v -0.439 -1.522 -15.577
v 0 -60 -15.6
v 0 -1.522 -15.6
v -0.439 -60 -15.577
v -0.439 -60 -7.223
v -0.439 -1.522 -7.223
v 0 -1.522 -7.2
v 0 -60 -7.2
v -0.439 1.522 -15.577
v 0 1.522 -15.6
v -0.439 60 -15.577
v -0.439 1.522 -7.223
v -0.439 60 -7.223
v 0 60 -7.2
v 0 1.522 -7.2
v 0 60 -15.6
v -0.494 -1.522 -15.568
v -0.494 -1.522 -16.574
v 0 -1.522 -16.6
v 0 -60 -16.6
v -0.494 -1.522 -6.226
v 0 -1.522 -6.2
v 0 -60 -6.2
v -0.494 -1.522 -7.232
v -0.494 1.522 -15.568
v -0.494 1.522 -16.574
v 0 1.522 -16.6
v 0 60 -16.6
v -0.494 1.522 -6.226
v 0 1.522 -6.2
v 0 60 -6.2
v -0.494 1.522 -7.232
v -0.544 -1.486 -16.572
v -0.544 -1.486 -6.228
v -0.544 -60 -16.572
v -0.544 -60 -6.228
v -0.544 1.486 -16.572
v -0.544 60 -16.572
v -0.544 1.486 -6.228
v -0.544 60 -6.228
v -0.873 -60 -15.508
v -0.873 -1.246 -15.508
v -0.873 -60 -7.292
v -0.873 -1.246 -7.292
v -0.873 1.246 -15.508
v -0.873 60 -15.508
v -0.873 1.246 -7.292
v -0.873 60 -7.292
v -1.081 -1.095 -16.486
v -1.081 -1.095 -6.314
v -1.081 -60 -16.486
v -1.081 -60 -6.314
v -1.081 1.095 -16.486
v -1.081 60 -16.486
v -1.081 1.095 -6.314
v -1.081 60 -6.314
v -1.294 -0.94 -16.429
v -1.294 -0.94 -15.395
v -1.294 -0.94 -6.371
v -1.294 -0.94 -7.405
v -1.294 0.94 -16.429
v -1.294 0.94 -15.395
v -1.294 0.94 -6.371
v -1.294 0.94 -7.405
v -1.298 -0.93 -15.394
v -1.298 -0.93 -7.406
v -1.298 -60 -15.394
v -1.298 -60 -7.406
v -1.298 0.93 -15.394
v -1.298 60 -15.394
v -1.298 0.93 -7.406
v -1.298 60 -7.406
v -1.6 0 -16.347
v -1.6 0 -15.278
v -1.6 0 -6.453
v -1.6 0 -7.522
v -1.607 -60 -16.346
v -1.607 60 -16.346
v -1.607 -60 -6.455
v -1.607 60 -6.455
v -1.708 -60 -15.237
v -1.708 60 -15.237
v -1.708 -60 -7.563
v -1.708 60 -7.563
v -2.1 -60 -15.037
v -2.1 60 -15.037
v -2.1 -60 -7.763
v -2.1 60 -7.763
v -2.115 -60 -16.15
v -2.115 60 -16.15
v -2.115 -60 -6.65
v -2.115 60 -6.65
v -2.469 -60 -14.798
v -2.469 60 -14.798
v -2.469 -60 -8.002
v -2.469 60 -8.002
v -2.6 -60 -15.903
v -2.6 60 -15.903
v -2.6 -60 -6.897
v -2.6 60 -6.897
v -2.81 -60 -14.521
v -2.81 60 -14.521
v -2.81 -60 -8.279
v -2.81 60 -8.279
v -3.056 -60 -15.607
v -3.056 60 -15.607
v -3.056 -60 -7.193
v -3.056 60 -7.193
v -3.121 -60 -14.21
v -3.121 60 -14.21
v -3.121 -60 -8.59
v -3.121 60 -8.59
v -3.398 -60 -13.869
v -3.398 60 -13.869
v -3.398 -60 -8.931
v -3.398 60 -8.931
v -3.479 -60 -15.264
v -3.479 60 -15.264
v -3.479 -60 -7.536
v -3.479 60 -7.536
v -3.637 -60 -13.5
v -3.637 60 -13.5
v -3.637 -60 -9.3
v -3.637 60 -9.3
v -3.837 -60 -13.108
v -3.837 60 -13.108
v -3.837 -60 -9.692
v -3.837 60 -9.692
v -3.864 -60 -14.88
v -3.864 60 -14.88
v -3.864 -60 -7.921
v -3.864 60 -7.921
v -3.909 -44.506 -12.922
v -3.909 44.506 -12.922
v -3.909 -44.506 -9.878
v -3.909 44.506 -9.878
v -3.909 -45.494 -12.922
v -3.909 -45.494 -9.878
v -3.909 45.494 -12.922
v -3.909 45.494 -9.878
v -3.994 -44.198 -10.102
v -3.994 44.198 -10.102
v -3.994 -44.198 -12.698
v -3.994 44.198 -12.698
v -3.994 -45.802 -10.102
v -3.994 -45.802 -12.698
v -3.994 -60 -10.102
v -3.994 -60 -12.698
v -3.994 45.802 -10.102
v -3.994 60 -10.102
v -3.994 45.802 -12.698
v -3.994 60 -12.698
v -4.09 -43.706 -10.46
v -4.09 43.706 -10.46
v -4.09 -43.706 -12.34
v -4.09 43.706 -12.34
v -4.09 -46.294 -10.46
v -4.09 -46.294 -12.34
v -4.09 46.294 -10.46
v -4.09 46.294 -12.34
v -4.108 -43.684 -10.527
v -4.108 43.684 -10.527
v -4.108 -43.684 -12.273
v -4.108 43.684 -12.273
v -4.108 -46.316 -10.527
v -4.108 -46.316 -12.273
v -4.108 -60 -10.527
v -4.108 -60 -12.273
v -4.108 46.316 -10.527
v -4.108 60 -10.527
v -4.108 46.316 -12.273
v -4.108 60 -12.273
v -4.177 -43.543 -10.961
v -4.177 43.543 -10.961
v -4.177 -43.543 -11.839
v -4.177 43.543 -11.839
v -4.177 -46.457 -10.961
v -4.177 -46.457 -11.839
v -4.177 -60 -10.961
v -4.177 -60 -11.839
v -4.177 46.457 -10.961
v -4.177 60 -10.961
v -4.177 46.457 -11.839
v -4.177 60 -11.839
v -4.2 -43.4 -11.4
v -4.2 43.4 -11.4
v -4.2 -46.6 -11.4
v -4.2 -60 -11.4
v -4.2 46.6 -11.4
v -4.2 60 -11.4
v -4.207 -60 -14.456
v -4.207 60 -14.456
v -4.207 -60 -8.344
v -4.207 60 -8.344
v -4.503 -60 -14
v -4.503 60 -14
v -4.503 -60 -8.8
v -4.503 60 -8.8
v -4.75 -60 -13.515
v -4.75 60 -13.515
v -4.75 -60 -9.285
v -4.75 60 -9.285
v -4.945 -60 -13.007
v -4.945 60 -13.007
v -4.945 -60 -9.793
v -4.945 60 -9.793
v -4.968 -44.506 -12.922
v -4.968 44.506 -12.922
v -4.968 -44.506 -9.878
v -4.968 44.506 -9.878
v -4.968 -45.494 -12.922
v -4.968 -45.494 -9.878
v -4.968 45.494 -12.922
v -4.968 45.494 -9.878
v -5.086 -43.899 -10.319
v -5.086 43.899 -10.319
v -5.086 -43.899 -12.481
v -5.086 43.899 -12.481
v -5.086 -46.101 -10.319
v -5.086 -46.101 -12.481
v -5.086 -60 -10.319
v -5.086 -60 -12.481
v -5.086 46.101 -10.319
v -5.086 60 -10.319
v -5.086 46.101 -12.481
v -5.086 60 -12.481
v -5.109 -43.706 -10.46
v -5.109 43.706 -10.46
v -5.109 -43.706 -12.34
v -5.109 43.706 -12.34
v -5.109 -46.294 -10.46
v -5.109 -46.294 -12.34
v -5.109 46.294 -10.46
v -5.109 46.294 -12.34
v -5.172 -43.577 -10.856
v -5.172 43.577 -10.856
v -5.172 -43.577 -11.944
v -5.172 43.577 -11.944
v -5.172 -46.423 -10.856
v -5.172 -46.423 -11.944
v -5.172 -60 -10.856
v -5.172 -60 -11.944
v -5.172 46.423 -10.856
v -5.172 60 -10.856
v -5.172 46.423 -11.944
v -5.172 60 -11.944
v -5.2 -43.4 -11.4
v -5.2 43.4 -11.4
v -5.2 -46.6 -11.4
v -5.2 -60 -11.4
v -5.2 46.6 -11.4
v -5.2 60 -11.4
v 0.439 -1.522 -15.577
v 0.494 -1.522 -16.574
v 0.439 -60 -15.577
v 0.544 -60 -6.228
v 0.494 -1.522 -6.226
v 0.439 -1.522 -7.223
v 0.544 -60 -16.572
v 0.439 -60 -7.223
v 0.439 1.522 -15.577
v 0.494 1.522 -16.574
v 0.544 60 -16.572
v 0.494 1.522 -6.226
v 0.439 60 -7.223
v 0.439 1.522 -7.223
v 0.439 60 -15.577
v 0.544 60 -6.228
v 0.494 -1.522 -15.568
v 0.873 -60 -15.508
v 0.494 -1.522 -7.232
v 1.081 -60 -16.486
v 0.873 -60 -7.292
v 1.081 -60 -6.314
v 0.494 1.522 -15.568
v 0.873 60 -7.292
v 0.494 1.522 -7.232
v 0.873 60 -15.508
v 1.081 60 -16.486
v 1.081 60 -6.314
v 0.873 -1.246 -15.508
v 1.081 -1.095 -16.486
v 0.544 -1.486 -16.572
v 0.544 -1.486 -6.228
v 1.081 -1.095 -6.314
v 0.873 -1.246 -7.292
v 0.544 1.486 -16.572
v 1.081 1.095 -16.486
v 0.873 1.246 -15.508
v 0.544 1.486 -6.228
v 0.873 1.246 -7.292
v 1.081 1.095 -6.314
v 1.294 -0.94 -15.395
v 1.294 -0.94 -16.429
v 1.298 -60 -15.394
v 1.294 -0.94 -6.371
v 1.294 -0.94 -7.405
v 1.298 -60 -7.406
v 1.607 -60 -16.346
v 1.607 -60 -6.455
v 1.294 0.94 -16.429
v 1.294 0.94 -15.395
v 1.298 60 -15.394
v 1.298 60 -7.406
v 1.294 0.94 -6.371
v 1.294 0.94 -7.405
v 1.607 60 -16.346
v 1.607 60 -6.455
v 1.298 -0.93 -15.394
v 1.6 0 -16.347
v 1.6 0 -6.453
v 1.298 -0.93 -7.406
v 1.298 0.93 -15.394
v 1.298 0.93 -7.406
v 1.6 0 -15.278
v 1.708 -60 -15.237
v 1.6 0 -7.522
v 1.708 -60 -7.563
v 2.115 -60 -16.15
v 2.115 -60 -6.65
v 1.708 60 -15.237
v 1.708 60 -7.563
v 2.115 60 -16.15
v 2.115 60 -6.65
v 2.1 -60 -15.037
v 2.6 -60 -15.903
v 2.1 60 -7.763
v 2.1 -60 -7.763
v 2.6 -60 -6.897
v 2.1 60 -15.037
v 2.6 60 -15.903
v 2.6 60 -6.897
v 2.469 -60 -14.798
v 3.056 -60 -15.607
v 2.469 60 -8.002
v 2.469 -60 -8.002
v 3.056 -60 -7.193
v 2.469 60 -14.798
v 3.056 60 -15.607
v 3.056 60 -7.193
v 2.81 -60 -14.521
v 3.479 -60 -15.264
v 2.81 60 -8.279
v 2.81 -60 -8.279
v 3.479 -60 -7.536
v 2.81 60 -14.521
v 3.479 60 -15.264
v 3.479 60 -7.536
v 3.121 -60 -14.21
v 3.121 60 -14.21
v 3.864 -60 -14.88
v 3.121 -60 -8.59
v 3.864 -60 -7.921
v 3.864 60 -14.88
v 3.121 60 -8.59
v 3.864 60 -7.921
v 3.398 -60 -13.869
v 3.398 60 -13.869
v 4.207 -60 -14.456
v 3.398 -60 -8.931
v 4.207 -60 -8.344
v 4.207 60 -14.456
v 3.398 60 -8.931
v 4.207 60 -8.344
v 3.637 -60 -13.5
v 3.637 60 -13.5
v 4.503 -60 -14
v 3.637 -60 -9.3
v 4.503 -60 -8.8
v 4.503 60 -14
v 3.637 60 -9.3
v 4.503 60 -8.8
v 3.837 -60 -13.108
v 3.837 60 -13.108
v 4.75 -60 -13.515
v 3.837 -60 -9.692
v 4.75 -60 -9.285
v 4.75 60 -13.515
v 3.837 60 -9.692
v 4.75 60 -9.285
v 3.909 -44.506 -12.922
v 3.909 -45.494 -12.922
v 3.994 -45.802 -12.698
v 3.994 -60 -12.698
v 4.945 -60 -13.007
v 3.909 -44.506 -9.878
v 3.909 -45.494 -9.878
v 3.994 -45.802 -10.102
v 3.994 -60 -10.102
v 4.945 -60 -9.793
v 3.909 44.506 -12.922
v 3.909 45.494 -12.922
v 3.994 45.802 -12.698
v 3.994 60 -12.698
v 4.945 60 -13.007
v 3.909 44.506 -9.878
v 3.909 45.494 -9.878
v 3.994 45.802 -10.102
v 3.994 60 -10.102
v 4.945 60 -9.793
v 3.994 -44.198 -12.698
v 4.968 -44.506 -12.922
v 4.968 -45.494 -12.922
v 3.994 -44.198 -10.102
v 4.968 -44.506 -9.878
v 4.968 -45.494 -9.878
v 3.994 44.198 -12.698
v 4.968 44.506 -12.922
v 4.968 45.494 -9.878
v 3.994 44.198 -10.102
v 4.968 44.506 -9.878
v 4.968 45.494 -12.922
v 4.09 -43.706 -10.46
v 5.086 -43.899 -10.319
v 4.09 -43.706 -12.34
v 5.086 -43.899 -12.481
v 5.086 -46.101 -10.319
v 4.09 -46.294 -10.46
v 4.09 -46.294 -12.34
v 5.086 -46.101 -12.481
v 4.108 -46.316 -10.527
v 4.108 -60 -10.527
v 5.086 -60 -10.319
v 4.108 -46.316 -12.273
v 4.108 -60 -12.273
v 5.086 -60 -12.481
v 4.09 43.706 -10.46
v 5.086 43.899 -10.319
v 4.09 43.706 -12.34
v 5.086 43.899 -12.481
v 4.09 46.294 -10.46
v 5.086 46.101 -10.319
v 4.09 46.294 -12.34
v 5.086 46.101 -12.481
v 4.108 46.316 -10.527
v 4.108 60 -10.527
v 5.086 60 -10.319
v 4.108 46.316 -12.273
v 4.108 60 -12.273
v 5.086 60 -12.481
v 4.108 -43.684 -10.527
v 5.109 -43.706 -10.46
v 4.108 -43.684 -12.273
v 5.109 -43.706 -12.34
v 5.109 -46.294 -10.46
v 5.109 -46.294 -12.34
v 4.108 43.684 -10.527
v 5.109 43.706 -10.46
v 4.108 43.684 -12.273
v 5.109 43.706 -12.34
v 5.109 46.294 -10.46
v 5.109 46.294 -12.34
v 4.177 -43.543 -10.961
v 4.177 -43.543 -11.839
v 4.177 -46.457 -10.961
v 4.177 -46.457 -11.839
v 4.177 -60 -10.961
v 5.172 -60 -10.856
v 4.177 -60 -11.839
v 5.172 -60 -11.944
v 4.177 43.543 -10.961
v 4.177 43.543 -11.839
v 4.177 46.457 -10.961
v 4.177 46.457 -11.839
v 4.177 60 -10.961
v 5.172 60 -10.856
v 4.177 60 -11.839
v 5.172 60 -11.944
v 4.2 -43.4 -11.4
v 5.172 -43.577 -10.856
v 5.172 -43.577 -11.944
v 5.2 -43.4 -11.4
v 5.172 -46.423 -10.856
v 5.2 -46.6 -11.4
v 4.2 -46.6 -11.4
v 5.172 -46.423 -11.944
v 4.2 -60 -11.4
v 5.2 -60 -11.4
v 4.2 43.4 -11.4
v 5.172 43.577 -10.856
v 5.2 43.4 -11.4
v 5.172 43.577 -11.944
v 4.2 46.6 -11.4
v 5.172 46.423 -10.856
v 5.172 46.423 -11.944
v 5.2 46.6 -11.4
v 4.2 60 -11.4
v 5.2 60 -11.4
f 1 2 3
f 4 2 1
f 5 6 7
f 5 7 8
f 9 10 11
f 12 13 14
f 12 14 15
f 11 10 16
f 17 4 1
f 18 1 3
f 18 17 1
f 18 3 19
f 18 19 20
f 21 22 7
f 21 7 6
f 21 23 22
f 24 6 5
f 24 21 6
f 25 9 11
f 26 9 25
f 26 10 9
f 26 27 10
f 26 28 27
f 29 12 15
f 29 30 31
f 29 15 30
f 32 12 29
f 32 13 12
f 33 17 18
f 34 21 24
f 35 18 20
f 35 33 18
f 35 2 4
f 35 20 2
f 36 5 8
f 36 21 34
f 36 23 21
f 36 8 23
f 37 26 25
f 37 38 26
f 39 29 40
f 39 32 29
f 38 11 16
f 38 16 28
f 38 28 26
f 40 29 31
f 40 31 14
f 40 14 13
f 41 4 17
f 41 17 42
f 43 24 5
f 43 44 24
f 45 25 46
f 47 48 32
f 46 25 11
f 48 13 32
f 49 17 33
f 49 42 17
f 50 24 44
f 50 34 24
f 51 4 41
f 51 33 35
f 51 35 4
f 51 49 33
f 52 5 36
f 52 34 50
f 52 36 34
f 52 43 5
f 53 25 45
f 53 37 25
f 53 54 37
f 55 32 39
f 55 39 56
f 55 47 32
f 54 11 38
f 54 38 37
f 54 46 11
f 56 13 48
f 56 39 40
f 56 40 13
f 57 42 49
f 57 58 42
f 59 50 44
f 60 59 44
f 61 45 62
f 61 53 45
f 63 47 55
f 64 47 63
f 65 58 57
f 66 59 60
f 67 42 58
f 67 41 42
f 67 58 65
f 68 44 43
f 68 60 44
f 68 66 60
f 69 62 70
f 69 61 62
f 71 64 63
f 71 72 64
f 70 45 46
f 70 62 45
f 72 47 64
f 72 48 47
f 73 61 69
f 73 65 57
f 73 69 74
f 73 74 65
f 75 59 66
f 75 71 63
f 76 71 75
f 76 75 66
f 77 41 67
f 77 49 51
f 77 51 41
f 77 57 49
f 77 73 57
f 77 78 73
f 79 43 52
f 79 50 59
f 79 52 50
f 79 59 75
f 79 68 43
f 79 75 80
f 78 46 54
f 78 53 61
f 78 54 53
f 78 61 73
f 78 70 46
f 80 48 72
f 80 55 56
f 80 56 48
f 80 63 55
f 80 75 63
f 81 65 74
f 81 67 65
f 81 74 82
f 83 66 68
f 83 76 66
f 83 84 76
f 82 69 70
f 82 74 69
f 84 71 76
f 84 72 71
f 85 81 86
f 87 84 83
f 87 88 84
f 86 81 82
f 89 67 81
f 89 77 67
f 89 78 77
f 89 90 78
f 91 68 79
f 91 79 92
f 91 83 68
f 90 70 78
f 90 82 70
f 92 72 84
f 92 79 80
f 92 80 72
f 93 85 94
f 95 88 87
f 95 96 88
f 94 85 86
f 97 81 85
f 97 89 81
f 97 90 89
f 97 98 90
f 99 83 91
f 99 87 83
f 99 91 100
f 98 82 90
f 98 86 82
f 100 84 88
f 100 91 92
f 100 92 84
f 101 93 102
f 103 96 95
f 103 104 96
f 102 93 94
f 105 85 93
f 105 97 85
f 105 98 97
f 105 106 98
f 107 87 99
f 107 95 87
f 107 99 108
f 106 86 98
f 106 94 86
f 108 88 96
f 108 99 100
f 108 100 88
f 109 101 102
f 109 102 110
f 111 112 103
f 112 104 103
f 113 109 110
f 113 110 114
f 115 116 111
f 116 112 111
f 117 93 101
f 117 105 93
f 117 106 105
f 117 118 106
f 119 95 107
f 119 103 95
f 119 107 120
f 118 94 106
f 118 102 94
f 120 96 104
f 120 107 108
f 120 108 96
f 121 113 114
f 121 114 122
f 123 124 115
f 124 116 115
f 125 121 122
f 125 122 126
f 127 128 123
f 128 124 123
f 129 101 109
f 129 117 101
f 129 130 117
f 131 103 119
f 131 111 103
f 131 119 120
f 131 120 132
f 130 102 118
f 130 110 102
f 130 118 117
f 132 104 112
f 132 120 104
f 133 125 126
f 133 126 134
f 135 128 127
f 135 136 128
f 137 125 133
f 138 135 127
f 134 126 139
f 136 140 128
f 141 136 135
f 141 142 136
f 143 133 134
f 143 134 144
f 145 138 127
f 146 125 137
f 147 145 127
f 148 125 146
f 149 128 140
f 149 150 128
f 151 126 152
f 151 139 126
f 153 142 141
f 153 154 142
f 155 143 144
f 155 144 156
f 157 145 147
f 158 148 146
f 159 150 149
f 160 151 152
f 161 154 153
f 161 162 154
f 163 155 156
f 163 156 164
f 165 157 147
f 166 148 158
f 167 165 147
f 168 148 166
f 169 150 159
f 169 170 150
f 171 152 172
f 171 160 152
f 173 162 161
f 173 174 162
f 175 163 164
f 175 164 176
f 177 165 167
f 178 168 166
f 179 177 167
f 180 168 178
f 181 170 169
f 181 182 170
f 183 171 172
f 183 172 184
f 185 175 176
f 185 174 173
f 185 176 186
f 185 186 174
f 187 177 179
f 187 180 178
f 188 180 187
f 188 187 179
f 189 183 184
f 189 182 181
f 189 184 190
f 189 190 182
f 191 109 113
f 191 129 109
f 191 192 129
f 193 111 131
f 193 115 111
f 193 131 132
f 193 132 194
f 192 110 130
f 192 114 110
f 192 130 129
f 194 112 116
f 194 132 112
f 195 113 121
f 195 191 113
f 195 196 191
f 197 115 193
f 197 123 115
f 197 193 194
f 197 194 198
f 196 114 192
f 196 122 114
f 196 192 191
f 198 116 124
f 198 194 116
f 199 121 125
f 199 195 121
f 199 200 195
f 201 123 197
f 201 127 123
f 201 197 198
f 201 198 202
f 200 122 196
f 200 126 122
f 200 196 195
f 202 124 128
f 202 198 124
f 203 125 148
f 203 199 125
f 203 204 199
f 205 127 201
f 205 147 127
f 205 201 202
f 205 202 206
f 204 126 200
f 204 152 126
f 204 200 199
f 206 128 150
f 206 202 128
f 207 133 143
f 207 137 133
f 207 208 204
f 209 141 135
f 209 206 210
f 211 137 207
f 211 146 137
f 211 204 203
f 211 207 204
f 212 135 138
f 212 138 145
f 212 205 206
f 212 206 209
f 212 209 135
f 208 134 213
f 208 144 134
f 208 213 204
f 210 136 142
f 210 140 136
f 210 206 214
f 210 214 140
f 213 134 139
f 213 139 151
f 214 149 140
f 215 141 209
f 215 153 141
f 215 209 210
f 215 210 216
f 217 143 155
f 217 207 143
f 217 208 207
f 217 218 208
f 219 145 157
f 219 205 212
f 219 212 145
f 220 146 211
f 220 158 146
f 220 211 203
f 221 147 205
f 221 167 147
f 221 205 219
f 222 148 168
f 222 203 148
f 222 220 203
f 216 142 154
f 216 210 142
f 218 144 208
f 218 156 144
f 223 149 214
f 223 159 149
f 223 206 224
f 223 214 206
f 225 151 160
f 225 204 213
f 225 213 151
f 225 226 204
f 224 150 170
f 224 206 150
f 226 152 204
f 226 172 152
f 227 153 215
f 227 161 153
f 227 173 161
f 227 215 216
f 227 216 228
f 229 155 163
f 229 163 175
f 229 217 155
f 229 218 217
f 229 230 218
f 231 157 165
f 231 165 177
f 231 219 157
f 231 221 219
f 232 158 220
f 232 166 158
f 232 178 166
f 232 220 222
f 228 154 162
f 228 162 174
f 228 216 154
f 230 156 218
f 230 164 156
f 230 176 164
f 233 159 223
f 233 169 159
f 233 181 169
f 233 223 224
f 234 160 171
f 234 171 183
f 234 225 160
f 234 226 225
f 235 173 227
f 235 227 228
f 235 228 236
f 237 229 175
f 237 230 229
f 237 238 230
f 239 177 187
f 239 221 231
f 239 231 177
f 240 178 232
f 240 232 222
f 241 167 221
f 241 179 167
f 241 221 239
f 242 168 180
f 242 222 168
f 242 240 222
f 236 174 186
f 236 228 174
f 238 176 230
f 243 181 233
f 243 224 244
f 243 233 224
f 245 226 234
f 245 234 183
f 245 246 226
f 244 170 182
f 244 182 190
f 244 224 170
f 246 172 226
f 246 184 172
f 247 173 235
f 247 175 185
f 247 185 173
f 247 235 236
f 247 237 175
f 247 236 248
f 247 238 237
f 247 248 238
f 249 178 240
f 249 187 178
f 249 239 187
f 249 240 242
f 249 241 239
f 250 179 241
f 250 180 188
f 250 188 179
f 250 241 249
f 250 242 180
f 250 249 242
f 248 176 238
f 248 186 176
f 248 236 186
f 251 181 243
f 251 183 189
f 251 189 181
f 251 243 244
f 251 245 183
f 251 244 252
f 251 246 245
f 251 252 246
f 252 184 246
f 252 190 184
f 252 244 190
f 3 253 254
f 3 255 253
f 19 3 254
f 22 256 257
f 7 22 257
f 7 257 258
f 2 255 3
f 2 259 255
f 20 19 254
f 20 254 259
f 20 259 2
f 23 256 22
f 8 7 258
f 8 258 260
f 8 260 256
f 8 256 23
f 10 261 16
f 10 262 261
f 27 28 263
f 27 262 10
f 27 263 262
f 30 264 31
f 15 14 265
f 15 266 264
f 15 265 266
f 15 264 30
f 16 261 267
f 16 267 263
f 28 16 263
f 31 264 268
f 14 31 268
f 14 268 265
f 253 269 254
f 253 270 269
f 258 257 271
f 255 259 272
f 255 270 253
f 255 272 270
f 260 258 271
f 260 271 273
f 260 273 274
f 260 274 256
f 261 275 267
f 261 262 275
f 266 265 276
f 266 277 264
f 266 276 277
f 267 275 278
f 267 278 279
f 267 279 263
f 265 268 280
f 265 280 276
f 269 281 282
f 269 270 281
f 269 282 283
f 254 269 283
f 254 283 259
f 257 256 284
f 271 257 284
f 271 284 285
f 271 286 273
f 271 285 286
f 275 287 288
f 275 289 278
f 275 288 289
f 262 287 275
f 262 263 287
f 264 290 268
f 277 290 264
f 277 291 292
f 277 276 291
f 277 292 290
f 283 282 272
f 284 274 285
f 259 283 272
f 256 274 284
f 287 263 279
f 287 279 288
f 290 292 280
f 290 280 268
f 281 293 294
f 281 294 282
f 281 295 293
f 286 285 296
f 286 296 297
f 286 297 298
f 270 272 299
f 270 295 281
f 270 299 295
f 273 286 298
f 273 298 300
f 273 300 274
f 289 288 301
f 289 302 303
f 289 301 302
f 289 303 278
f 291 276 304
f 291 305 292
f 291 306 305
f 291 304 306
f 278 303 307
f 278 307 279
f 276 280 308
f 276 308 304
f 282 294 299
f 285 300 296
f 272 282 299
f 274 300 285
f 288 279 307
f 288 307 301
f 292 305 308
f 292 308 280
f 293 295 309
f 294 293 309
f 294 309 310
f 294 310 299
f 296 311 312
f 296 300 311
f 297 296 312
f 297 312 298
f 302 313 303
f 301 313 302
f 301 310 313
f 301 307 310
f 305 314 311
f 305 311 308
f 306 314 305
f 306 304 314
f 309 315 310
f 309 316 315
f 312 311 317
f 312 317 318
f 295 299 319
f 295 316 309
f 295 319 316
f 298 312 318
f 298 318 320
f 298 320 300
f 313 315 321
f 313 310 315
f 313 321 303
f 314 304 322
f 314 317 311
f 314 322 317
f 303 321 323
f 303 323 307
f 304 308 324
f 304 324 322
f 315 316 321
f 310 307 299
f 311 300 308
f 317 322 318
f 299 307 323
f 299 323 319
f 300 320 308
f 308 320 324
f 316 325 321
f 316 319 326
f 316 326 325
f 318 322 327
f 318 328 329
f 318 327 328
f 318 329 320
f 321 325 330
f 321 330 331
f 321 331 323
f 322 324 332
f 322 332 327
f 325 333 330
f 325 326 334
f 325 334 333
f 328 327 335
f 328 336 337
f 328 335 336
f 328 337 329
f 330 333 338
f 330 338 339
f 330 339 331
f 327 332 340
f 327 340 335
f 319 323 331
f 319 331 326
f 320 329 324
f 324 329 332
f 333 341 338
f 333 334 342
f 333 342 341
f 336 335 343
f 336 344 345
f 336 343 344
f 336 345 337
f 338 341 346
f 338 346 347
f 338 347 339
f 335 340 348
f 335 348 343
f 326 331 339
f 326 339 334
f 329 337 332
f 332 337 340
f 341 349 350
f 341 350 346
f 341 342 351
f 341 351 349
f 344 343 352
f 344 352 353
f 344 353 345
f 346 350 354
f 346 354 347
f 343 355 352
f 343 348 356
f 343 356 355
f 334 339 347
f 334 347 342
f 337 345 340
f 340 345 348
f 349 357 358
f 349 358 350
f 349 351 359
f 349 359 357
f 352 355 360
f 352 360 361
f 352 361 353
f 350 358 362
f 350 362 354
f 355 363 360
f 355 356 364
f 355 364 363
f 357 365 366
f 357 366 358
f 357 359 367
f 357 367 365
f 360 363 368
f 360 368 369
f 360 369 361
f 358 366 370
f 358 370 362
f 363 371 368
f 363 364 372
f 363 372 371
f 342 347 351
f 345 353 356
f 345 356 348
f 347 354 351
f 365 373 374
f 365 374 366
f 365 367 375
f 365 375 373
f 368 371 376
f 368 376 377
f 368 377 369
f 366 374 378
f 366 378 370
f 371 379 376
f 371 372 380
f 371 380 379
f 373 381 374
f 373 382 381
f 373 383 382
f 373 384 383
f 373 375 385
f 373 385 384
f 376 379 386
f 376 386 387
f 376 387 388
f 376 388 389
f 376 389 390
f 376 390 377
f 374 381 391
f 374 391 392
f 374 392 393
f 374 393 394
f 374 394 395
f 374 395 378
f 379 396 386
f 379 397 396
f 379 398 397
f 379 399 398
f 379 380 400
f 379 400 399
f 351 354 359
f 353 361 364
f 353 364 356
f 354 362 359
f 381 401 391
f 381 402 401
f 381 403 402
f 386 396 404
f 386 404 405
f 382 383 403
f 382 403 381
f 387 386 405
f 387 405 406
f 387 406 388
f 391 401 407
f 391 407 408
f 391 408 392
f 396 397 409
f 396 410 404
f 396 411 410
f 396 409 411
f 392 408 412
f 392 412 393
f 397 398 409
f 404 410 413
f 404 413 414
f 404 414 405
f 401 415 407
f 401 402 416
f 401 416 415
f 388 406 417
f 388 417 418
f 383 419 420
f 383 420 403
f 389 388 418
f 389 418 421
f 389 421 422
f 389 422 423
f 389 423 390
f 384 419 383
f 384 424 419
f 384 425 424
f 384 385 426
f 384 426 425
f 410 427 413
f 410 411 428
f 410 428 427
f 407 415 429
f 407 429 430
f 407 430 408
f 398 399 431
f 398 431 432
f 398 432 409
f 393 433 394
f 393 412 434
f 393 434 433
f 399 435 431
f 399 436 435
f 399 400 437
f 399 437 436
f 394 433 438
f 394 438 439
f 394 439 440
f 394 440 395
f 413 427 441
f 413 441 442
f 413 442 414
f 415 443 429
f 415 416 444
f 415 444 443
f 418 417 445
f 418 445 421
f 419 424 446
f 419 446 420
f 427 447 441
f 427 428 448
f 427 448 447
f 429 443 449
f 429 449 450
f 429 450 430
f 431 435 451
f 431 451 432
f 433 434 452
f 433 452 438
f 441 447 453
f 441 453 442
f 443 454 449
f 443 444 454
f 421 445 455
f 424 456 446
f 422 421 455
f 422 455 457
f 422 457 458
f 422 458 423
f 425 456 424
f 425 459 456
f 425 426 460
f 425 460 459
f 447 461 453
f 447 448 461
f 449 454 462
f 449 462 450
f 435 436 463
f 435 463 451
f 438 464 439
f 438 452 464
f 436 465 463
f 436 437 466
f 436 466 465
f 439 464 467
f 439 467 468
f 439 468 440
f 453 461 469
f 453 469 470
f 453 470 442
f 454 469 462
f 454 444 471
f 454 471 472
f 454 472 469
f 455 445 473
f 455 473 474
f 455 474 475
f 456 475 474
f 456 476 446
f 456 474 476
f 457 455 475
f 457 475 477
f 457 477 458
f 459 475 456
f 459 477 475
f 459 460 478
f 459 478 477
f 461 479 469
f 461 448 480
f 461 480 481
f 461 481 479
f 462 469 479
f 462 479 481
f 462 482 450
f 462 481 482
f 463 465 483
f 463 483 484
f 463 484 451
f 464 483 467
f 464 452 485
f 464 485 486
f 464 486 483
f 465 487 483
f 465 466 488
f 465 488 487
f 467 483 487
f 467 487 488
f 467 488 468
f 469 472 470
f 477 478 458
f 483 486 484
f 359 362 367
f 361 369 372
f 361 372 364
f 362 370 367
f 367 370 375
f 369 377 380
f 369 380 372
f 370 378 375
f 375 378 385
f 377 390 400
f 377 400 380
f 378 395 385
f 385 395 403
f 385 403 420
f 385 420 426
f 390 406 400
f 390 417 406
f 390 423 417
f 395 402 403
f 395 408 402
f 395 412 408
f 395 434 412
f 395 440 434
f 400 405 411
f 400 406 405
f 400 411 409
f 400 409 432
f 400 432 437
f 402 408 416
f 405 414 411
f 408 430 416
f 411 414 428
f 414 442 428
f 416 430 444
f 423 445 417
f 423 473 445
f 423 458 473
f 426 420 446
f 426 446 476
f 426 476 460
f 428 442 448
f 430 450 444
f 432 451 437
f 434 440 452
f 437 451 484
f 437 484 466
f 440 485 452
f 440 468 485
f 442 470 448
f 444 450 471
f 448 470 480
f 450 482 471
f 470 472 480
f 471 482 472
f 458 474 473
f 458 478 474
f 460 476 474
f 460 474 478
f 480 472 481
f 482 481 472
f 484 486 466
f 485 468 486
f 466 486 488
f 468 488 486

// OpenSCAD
// file: ../888_1000.scad
/*
// Nastavení zobrazení
$vpr = [338, 0, 357];
$vpt = [180, 25, -18];
$vpd = 1280;
*/
//improving rendering speed.
draft = true;   // sets rendering quality to draft.
$fs = draft ? 5 : 0.5;
$fa = 10;

/*
TODO: 

Přední díl obsahuje převis ve směru vybrání pro držák motoru. (U horního zámku)
Otvory pro šrouby v předním dílu jsou oválné, protože nejsou kolmo k rovině modelu.


*/




//vnitřní kapka
module hollowing_skeleton(shell_thickness = hull_wall_thickness, draft)
{

    beta = 90 - trailing_edge_angle(naca = hull_airfoil_thickness); // calculate the angle of trailing edge
    trailing_wall= 1/(cos(beta)); //calculate lenght of wall cut relative to wall thickness 

    intersection () {
    resize([hull_drop_length - shell_thickness - trailing_wall* shell_thickness, (hull_drop_length*hull_airfoil_thickness/100) - 2*shell_thickness, (hull_drop_length*hull_airfoil_thickness/100) - 2*shell_thickness], auto=true)
            rotate ([0,90,0])           
            rotate_extrude($fn = draft ? 50 : 100)
                rotate([0,0,90])
                    difference()
                    {
                      polygon(points = airfoil_data(naca=hull_airfoil_thickness, L = hull_drop_length, N=draft ? 50 : 200)); 
                      square(hull_drop_length); 
                    }
                    
      translate([0,0,hull_corner_radius])
        minkowski(){                   
            translate ([0,- hull_y_size , - hull_z_size/2 + shell_thickness])
                cube ([hull_x_size,2*hull_y_size - shell_thickness, hull_z_size - 2*shell_thickness - 2*hull_corner_radius]);
                rotate ([0,90,0])
                    cylinder (h = 1, r = hull_corner_radius, $fn = draft ? 50 : 100);                   
          }
                            
    }
}

module hollowing_skeleton_hem(ribbon_width, draft)
{

    beta = 90 - trailing_edge_angle(naca = hull_airfoil_thickness); // calculate the angle of trailing edge
    trailing_wall= 1/(cos(beta)); //calculate lenght of wall cut relative to wall thickness 

    intersection () {
    resize([hull_drop_length - ribbon_width - trailing_wall* ribbon_width, (hull_drop_length*hull_airfoil_thickness/100) - 2*ribbon_width, (hull_drop_length*hull_airfoil_thickness/100) - 2*ribbon_width], auto=true)
            rotate ([0,90,0])           
            rotate_extrude($fn = draft ? 50 : 100)
                rotate([0,0,90])
                    difference()
                    {
                      polygon(points = airfoil_data(naca=hull_airfoil_thickness, L = hull_drop_length, N=draft ? 50 : 200)); 
                      square(hull_drop_length); 
                    }
                    
      translate([0,0,hull_corner_radius])
        minkowski(){                   
            translate ([0,- hull_y_size, - hull_z_size/2 + ribbon_width])
                cube ([hull_x_size,2*hull_y_size - ribbon_width, hull_z_size - 2*ribbon_width - 2*hull_corner_radius]);
                rotate ([0,90,0])
                    cylinder (h = 1, r = hull_corner_radius, $fn = draft ? 50 : 100);                   
          }
                            
    }
}




//celá kapka
module drop(draft = true)
{

    beta = 90 - trailing_edge_angle(naca = hull_airfoil_thickness); // calculate the angle of trailing edge
    trailing_wall= 1/(cos(beta)); //calculate lenght of wall cut relative to wall thickness 

	intersection () {
    	rotate ([0,90,0])           
        	rotate_extrude($fn = draft ? 50 : 100)
                    rotate([0,0,90])
                        difference()
                        {
	                        polygon(points = airfoil_data(naca=hull_airfoil_thickness, L =hull_drop_length , N=draft ? 50 : 200)); 
    	                    square(hull_drop_length); 
        	            }
            		
        translate([0,0,hull_corner_radius])
          	minkowski(){                   
             	translate ([0,-hull_y_size,-hull_z_size/2])
             			cube ([hull_x_size, 2*hull_y_size,hull_z_size-2*hull_corner_radius]);
             	  	rotate ([0,90,0])
                 		cylinder (h = 1, r = hull_corner_radius, $fn = draft ? 50 : 100);                   
		    }
		    
	}
}


//základní kapka
module drop_skin(draft){

	difference(){
			drop();
		translate([hull_wall_thickness,0,0])
			hollowing_skeleton();
	}

}




drop_skin();














use <./lib/naca4.scad>
include <../Parameters.scad>
// file: ../../Parameters.scad
//Main tube diameter - hole [mm]
main_tube_outer_diameter = 25.4;
main_tube_inner_diameter = 23.5;

//Tube for undercarriage - hole [mm]
tube_for_undercarriage_outer_diameter = 10.6;
tube_for_undercarriage_inner_diameter = 6;
global_clearance = 0.5;


//umístění podvozkových trubek

second_undercarriage_hole = main_tube_outer_diameter*2 + main_tube_outer_diameter/5 + main_tube_outer_diameter/2 + 170 + 160;

// Parameters of cube couplings
coupling_wall_thickness = main_tube_outer_diameter/5;  //width of coupling walls 
thickness_between_tubes = main_tube_outer_diameter/10;    // minimum distance between tubes in couplings

coupling_wall_thickness_undercarriage = tube_for_undercarriage_outer_diameter/3;
thickness_between_tubes_undercarriage = tube_for_undercarriage_outer_diameter/10;

//Screw diameter and nut for M4 [mm]
M4_screw_diameter=4.5;
Nut_height_M4 = 3.2;
Nut_diameter_M4 = 7.86;


//Screw diameter and nut for M3 [mm]
M3_screw_diameter = 3.2;
Nut_height_M3 = 1.7;	
Nut_diameter_M3 = 6.6; 


//The tube for help
Help_main_tube_outer = 25;
Help_main_tube_inner = 23; 
Help_tube_for_undercarriage_outer = 10;
Help_tube_for_undercarriage_inner = 5;


//main hull parameters

hull_drop_length = 580;
hull_wall_thickness = 0.8;
hull_y_size = 120;
hull_z_size = 150;
hull_x_size = 580;
hull_corner_radius = 4;
hull_airfoil_thickness= 35;  // thickness of drop generating airfoil in percent of lenght.
hull_scale_x = 1;
hull_scale_y = 1.5;
hull_scale_z = 1.5;

main_pilon_position = 170+68;
cover_pilon_position = 180;
height_of_vertical_tube = 275; //278mm je změřená délka trubky. 

ribbon_width = 5; // šířka vyztužovacích lemů. 

// šířka otvoru v přední části kapoty pro držák motoru.
width_of_engine_holder = 63;

//Top Cover Division - dělení horního krytu pro tisk
top_cover_division = [0, 50, 150, 280, 410, hull_x_size]; // upraveny seznam tak, aby deleni začinalo od nuly, což umožňí úplně automatické rozdělení.

//Bottom Cover Division - dělení dolního krytu pro tisk
bottom_cover_division = [0,100,250,365, 470, hull_x_size];
// zkrácená část pro payload pro testovací tisk
//bottom_cover_division = [0,200,250,365, 470, hull_x_size];

//Base Divison - dělení podložky
base_division = [0,140,280,410, hull_x_size];

//Cover pilon division - na výšku (v ose Z)
cover_pilon_division = [0,170,height_of_vertical_tube + main_tube_outer_diameter + coupling_wall_thickness];

//pozice šroubů
	//horní kryt
top_screw_position = [0, (top_cover_division[0] + top_cover_division[1])/4, (top_cover_division[2] - top_cover_division[1])/2 + top_cover_division[1], (top_cover_division[3] - top_cover_division[2])/2 + top_cover_division[2],(top_cover_division[4] - top_cover_division[3])/2 + top_cover_division[3],(top_cover_division[5] - top_cover_division[4])/2 + top_cover_division[4] - 20];
	//spodní kryt
bottom_screw_position = [0,(bottom_cover_division[0] + bottom_cover_division[1])/15 + 5, bottom_cover_division[1]/1.1, + bottom_cover_division[3], bottom_cover_division[3] + bottom_cover_division[1]/2, bottom_cover_division[4] - 6*global_clearance, bottom_cover_division[4] + bottom_cover_division[1]/2.5];




//šířka zámků
lock_width = 10;

//délka zámků
lock_length = 3;


//accumulator
//základní rozměry akumulátoru
width_of_accumulator = 129.4;//45+1;
depth_of_accumulator = 40.61;
height_of_accumulator = 43.65;
//Zapuštění akumulátoru
sink_of_accumulator = 5; //main_tube_outer_diameter/5 - Nut_height_M3*1.5;

//tloušťka hrany spojky
accumulator_holder_width = 18; 
accumulator_holder_thickness = 10; 

//posunutí akumálátoru na podložce
move_of_accumulator = 165;   // pozice akumulátoru (ovlivňuje těžiště)


////////////////
// Senzory
///////////////////

//opticalFlow
    width_optical_flow_senzor = 45.5;
    depth_optical_flow_senzor = 6;
    height_optical_flow_senzor = 35;
    sink_of_optical_flow_senzor = depth_optical_flow_senzor - 5; 
    M3_optical_flow_senzor_Z = 30.4;
    M3_optical_flow_senzor_X = 24;
    M3_optical_flow_senzor_Z_alone = 9.1;
    M3_optical_flow_senzor_X_alone = 16.7;
// file: ../lib/naca4.scad
// Naca4.scad - library for parametric airfoils of 4 digit NACA series
// Code: Rudolf Huttary, Berlin 
// June 2015
// commercial use prohibited


// general use: for more examples refer to sampler.scad
// naca = naca digits or 3el vector  (default = 12 or [0, 0, .12])
// L    = chord length [mm]      (default= 100)
// N    = # sample points        (default= 81)
// h    = height [mm]            (default= 1)
// open = close at the thin end? (default = true)
// two equivalent example calls
 airfoil(naca = 2408, L = 60, N=1001, h = 30, open = false); 
// airfoil(naca = [.2, .4, .32], L = 60, N=1001, h = 30, open = false); 

module help()
{
  echo(str("\n\nList of signatures in lib:\n=================\n", 
  "module airfoil(naca=2412, L = 100, N = 81, h = 1, open = false) - renders airfoil object\n", 
  "module airfoil(naca=[.2, .4, .12], L = 100, N = 81, h = 1, open = false) - renders airfoil object using percentage for camber,  camber distance and thicknes\n", 
  "function airfoil_data(naca=12, L = 100, N = 81, open = false)\n",
  "=================\n")); 
}

help(); 
// this is the object
module airfoil(naca=12, L = 100, N = 81, h = 1, open = false)
{
  linear_extrude(height = h)
  polygon(points = airfoil_data(naca, L, N, open)); 
}

module hollow_airfoil(lnaca=12, L = 100, N = 81, h = 1, open = false, wall_thickness = 1)
{
    if (open){
        linear_extrude(height = h)

        if (wall_thickness>0){
            difference(){
                polygon(points = airfoil_data(naca, L, N, false));
                offset(delta = - wall_thickness, chamfer = false) polygon(points = airfoil_data(naca, L, N, open = false));
            }
        }
        else{
            difference(){
                offset(delta = - wall_thickness, chamfer = false) polygon(points = airfoil_data(naca, L, N, open = false));
                polygon(points = airfoil_data(naca, L, N, false));
            }
        }
    }
    else{

        linear_extrude(height = abs(wall_thickness))
            polygon(points = airfoil_data(naca, L, N, false)); 

        linear_extrude(height = h)
            difference(){
                polygon(points = airfoil_data(naca, L, N, open));
                offset(delta = - wall_thickness) polygon(points = airfoil_data(naca, L, N, open = false));
            }

        translate([0,0, h - wall_thickness])
            linear_extrude(height = abs(wall_thickness))
                polygon(points = airfoil_data(naca, L, N, false)); 

    }
}


// this is the main function providing the airfoil data
function airfoil_data(naca=12, L = 100, N = 81, open = false) = 
  let(Na = len(naca)!=3?NACA(naca):naca)
  let(A = [.2969, -0.126, -.3516, .2843, open?-0.1015:-0.1036])
  [for (b=[-180:360/(N):179.99]) 
    let (x = (1-cos(b))/2)  
    let(yt = sign(b)*Na[2]/.2*(A*[sqrt(x), x, x*x, x*x*x, x*x*x*x])) 
    Na[0]==0?L*[x, yt]:L*camber(x, yt, Na[0], Na[1], sign(b))];  


function trailing_edge_angle(naca=12, open = false) = 
  let(Na = len(naca)!=3?NACA(naca):naca)
  let(A = [.2969, -0.126, -.3516, .2843, open?-0.1015:-0.1036])
  let (x =0.999)  // set x near to airfoil trailing edge
  let(yt = Na[2]/.2*(A*[sqrt(x), x, x*x, x*x*x, x*x*x*x])) // calculate distance from x-axis at previously set position
  atan2(yt,1-x);  // calculate angle of triangle between end of airfoil. The triange height corresponds to previously calculated distance from x-axis

function surface_angle(x = 0.5, naca=12, open = false) = 
  let(Na = len(naca)!=3?NACA(naca):naca)
  let(A = [0.2969, -0.126, -0.3516, 0.2843, open?-0.1015:-0.1036])
  let(dy = Na[2]/0.2*(A*[(1/2)*(1/sqrt(x)), 1, 2*x, 3*x*x, 4*x*x*x])) // calculate derivative of airfoil function at the x point
  atan(dy);  // calculate  the angle from function derivative

function surface_distance(x = 0.5, naca=12, open = false) = 
  let(Na = len(naca)!=3?NACA(naca):naca)
  let(A = [0.2969, -0.126, -0.3516, 0.2843, open?-0.1015:-0.1036])
  Na[2]/.2*(A*[sqrt(x), x, x*x, x*x*x, x*x*x*x]); // calculate distance from x-axis at previously set position

// helper functions
function NACA(naca) = 
  let (M = floor(naca/1000))
  let (P = floor((naca-M*1000)/100)) 
  [M/100, P/10, floor(naca-M*1000-P*100)/100];  

function camber(x, y, M, P, upper) = 
  let(yc = (x<P)?M/P/P*(2*P*x-x*x): M/(1-P)/(1-P)*(1 - 2*P + 2*P*x -x*x))
  let(dy = (x<P)?2*M/P/P*(P-x):2*M/(1-P)/(1-P)*(P-x))
  let(th = atan(dy))
  [upper ? x - y*sin(th):x + y*sin(th), upper ? yc + y*cos(th):yc - y*cos(th)];
// file: ../888_1031.scad
// patka pro pridelani predni tyce pylonu k nosniku
include <../parameters.scad>
use <888_1004.scad>
//use <lib/drill.scad>

draft = true;

module 888_1031(draft){
    difference(){
        hull(){
            //translate([-beam_patern/2, 0, -beam_thickness/4])
            //    cube([beam_patern, beam_width/2+pilon_pipe_diameter+15, beam_thickness/2]);

        // tvar pro srouby do podlozky
            for (i=[-beam_patern/2,0])
                translate([i, 0, 0])
                    rotate([-90, 0, 0])
                        cylinder(d = M4_nut_diameter+8, h = beam_width/2+pilon_pipe_diameter+15, $fn = draft? 10 : 60);

        // Tvar pro pripevneni pro tyce
            for (i=[-beam_patern/2, beam_patern/2])
                translate([i - beam_patern/4, 0, -beam_main_pipe_thickness - beam_vertical_space_between_pipes])
                    rotate([-90, 0, 0])
                        cylinder(d = beam_main_pipe_thickness+4.75, h = beam_width/2+pilon_pipe_diameter+15, $fn = draft? 10 : 60);
        }

        translate([-40, 0, 0])
            beam_plug(80);

        for (i=[-beam_patern/2, beam_patern/2]) {
            translate([i, 0, 0])
                rotate([-90, 0, 0]){
                    cylinder(d = M4_screw_diameter, h = 100, $fn =  draft? 10 : 60);
                    translate([0, 0, beam_width/2 + 10])
                        cylinder(d = M4_nut_diameter, h = 100, $fn =  draft? 10 : 60);

                }
        }

        // Dira pro pripevneni pro tyce pylonu
        for (i=[[-beam_patern/2, 0], [beam_patern/2, 180]])
            translate([i[0] - beam_patern/4, 0, -beam_main_pipe_thickness - beam_vertical_space_between_pipes]){
                rotate([-90, 0, 0])
                    cylinder(d = beam_main_pipe_thickness, h = beam_width/2 + 5 + 15 + global_clearance, $fn = draft? 10 : 60);
                rotate([0, 90, 0])
                    translate([0, beam_width/2+5, 0])
                        rotate([i[1], 0, 0]){
                            cylinder(d = M3_screw_diameter, h = 20, center = true);
                            translate([0, 0, -10 - beam_main_pipe_thickness/2 -1]) cylinder(d = M3_nut_diameter, h = 10);
                            hull(){
                                translate([0, 0, beam_main_pipe_thickness/2 +1]) cylinder(d = M3_nut_diameter, h = M3_nut_height, $fn = 6);
                                translate([20, 0, beam_main_pipe_thickness/2 +1]) cylinder(d = M3_nut_diameter, h = M3_nut_height, $fn = 6);
                            }

                        }
            }

        translate([-beam_patern/4, pilon_pipe_base_front_y, pilon_pipe_base_front_z])
            orientate([-pilon_pipe_base_front_x + pilon_pipe_head_front_x, -(pilon_pipe_base_front_y-pilon_pipe_head_front_y), height_of_vertical_tube-pilon_pipe_base_front_z],vref=[0,0,1], roll=0)
                union(){
                    translate([0, 0, -15-global_clearance])
                        cylinder(d = pilon_pipe_diameter, h = 500, $fn = draft? 10 : 60);

                    for(i = [[0, 0], [-10, 180]]) translate([0, 0, i[0]])
                    rotate([90, i[1], 0]){
                        translate([0, 0,-beam_main_pipe_thickness/2-2]) cylinder(d = M3_screw_diameter, h = 50, $fn =  draft? 20 : 60);
                        translate([0, 0,-beam_main_pipe_thickness/2-2-50-layer]) cylinder(d = M3_nut_diameter, h = 50, $fn =  draft? 20 : 60);
                        translate([0, 0, pilon_pipe_diameter/2+2]) cylinder(d = M3_nut_diameter, h = M3_nut_height, $fn = 6);
                        translate([-M3_nut_diameter/2, 0, pilon_pipe_diameter/2+2]) cube([M3_nut_diameter, 50, M3_nut_height]);
                    }
            }
    }
}

module 888_1031_pipe(draft){
    translate([0, 0, -beam_main_pipe_thickness - beam_vertical_space_between_pipes])
        rotate([0, 0, 90])
            difference(){
                rotate([0, 90, 0])
                    cylinder(d = beam_main_pipe_thickness, h = beam_width + 2*(5+15), center = true, $fn =  draft? 10 : 60);
                rotate([0, 90, 0])
                    cylinder(d = beam_main_pipe_thickness-2, h = beam_width + 2*(5+15)+1, center = true, $fn =  draft? 10 : 60);

                rotate([0, 0, 90])
                    cylinder(d = M3_screw_diameter, h = 30, center = true, $fn =  draft? 8 : 10);

                translate([beam_width/2 + 5, 0, 0])
                    rotate([90, 0, 0])
                        cylinder(d = M3_screw_diameter, h = 30, center = true, $fn =  draft? 8 : 10);

                translate([-beam_width/2 - 5, 0, 0])
                    rotate([90, 0, 0])
                        cylinder(d = M3_screw_diameter, h = 30, center = true, $fn =  draft? 8 : 10);


            }
}

module 888_1031_drill_a(draft){

    cube_side = 25;
    height = 40;
    clamp_length = 10;
    clamp_thickness = 1;
    pipe_diameter = beam_main_pipe_thickness;
    drill_diameter = M3_screw_diameter;
    holes = [15];
    end = true;
    text_a = "drill-A 888_1031";
    text_b = "pylon pricna trub";


    difference(){
        translate([-cube_side/2, -cube_side/2, end? -5: 0]) cube([cube_side, cube_side, height + (end?5:0)]);
        cylinder(d = pipe_diameter, h=height+1, $fn = draft? 10 : 60);

        for(i = holes){
            translate([0, 0, i])
                rotate([0, 90, 0])
                    cylinder(d = drill_diameter, h = cube_side+2, center = true, $fn = draft? 10 : 60);
        }

        translate([-clamp_thickness/2, -cube_side/2, height - clamp_length])
            cube([clamp_thickness, cube_side, clamp_length]);

        for(i = [1, -1]){
            translate([-cube_side/2, i*(pipe_diameter/2+2), height - clamp_length/2])
                rotate([0, 90, 0])
                    cylinder(d = M3_screw_diameter, h = cube_side, $fn = draft? 10 : 60);

            translate([-cube_side/2, i*(pipe_diameter/2+2), height - clamp_length/2])
                rotate([0, 90, 0])
                    cylinder(d = M3_nut_diameter, h = cube_side/2 - pipe_diameter/3, $fn = 6);

            translate([pipe_diameter/3, i*(pipe_diameter/2+2), height - clamp_length/2])
                rotate([0, 90, 0])
                    cylinder(d = M3_nut_diameter, h = cube_side/2 - pipe_diameter/3, $fn = 6);
        }

        translate([-cube_side/4, -cube_side/2, height/2]) rotate([90, -90, 0]) linear_extrude(0.3, center = true) text(text_a, valign = "center", halign = "center", size = 4);
        translate([cube_side/4, -cube_side/2, height/2]) rotate([90, -90, 0]) linear_extrude(0.3, center = true) text(text_b, valign = "center", halign = "center", size = 4);
    }
}

module 888_1031_info(){
    echo("==========INFO 888_1031 ==========");
    echo("Dil pro pripevneni prednich tyci pylonu");

    echo(" ");
    echo("Delka pricnych tyci:", beam_width + 2*(5+15));
}


888_1031_info();
888_1031();
//888_1031_pipe();

//translate([20, 0, 0]) 888_1031_drill_a($preview);
// main file
include <../../parameters.scad>
draft = $preview;

use<../888_1031.scad>

888_1031_pipe(draft=draft);
